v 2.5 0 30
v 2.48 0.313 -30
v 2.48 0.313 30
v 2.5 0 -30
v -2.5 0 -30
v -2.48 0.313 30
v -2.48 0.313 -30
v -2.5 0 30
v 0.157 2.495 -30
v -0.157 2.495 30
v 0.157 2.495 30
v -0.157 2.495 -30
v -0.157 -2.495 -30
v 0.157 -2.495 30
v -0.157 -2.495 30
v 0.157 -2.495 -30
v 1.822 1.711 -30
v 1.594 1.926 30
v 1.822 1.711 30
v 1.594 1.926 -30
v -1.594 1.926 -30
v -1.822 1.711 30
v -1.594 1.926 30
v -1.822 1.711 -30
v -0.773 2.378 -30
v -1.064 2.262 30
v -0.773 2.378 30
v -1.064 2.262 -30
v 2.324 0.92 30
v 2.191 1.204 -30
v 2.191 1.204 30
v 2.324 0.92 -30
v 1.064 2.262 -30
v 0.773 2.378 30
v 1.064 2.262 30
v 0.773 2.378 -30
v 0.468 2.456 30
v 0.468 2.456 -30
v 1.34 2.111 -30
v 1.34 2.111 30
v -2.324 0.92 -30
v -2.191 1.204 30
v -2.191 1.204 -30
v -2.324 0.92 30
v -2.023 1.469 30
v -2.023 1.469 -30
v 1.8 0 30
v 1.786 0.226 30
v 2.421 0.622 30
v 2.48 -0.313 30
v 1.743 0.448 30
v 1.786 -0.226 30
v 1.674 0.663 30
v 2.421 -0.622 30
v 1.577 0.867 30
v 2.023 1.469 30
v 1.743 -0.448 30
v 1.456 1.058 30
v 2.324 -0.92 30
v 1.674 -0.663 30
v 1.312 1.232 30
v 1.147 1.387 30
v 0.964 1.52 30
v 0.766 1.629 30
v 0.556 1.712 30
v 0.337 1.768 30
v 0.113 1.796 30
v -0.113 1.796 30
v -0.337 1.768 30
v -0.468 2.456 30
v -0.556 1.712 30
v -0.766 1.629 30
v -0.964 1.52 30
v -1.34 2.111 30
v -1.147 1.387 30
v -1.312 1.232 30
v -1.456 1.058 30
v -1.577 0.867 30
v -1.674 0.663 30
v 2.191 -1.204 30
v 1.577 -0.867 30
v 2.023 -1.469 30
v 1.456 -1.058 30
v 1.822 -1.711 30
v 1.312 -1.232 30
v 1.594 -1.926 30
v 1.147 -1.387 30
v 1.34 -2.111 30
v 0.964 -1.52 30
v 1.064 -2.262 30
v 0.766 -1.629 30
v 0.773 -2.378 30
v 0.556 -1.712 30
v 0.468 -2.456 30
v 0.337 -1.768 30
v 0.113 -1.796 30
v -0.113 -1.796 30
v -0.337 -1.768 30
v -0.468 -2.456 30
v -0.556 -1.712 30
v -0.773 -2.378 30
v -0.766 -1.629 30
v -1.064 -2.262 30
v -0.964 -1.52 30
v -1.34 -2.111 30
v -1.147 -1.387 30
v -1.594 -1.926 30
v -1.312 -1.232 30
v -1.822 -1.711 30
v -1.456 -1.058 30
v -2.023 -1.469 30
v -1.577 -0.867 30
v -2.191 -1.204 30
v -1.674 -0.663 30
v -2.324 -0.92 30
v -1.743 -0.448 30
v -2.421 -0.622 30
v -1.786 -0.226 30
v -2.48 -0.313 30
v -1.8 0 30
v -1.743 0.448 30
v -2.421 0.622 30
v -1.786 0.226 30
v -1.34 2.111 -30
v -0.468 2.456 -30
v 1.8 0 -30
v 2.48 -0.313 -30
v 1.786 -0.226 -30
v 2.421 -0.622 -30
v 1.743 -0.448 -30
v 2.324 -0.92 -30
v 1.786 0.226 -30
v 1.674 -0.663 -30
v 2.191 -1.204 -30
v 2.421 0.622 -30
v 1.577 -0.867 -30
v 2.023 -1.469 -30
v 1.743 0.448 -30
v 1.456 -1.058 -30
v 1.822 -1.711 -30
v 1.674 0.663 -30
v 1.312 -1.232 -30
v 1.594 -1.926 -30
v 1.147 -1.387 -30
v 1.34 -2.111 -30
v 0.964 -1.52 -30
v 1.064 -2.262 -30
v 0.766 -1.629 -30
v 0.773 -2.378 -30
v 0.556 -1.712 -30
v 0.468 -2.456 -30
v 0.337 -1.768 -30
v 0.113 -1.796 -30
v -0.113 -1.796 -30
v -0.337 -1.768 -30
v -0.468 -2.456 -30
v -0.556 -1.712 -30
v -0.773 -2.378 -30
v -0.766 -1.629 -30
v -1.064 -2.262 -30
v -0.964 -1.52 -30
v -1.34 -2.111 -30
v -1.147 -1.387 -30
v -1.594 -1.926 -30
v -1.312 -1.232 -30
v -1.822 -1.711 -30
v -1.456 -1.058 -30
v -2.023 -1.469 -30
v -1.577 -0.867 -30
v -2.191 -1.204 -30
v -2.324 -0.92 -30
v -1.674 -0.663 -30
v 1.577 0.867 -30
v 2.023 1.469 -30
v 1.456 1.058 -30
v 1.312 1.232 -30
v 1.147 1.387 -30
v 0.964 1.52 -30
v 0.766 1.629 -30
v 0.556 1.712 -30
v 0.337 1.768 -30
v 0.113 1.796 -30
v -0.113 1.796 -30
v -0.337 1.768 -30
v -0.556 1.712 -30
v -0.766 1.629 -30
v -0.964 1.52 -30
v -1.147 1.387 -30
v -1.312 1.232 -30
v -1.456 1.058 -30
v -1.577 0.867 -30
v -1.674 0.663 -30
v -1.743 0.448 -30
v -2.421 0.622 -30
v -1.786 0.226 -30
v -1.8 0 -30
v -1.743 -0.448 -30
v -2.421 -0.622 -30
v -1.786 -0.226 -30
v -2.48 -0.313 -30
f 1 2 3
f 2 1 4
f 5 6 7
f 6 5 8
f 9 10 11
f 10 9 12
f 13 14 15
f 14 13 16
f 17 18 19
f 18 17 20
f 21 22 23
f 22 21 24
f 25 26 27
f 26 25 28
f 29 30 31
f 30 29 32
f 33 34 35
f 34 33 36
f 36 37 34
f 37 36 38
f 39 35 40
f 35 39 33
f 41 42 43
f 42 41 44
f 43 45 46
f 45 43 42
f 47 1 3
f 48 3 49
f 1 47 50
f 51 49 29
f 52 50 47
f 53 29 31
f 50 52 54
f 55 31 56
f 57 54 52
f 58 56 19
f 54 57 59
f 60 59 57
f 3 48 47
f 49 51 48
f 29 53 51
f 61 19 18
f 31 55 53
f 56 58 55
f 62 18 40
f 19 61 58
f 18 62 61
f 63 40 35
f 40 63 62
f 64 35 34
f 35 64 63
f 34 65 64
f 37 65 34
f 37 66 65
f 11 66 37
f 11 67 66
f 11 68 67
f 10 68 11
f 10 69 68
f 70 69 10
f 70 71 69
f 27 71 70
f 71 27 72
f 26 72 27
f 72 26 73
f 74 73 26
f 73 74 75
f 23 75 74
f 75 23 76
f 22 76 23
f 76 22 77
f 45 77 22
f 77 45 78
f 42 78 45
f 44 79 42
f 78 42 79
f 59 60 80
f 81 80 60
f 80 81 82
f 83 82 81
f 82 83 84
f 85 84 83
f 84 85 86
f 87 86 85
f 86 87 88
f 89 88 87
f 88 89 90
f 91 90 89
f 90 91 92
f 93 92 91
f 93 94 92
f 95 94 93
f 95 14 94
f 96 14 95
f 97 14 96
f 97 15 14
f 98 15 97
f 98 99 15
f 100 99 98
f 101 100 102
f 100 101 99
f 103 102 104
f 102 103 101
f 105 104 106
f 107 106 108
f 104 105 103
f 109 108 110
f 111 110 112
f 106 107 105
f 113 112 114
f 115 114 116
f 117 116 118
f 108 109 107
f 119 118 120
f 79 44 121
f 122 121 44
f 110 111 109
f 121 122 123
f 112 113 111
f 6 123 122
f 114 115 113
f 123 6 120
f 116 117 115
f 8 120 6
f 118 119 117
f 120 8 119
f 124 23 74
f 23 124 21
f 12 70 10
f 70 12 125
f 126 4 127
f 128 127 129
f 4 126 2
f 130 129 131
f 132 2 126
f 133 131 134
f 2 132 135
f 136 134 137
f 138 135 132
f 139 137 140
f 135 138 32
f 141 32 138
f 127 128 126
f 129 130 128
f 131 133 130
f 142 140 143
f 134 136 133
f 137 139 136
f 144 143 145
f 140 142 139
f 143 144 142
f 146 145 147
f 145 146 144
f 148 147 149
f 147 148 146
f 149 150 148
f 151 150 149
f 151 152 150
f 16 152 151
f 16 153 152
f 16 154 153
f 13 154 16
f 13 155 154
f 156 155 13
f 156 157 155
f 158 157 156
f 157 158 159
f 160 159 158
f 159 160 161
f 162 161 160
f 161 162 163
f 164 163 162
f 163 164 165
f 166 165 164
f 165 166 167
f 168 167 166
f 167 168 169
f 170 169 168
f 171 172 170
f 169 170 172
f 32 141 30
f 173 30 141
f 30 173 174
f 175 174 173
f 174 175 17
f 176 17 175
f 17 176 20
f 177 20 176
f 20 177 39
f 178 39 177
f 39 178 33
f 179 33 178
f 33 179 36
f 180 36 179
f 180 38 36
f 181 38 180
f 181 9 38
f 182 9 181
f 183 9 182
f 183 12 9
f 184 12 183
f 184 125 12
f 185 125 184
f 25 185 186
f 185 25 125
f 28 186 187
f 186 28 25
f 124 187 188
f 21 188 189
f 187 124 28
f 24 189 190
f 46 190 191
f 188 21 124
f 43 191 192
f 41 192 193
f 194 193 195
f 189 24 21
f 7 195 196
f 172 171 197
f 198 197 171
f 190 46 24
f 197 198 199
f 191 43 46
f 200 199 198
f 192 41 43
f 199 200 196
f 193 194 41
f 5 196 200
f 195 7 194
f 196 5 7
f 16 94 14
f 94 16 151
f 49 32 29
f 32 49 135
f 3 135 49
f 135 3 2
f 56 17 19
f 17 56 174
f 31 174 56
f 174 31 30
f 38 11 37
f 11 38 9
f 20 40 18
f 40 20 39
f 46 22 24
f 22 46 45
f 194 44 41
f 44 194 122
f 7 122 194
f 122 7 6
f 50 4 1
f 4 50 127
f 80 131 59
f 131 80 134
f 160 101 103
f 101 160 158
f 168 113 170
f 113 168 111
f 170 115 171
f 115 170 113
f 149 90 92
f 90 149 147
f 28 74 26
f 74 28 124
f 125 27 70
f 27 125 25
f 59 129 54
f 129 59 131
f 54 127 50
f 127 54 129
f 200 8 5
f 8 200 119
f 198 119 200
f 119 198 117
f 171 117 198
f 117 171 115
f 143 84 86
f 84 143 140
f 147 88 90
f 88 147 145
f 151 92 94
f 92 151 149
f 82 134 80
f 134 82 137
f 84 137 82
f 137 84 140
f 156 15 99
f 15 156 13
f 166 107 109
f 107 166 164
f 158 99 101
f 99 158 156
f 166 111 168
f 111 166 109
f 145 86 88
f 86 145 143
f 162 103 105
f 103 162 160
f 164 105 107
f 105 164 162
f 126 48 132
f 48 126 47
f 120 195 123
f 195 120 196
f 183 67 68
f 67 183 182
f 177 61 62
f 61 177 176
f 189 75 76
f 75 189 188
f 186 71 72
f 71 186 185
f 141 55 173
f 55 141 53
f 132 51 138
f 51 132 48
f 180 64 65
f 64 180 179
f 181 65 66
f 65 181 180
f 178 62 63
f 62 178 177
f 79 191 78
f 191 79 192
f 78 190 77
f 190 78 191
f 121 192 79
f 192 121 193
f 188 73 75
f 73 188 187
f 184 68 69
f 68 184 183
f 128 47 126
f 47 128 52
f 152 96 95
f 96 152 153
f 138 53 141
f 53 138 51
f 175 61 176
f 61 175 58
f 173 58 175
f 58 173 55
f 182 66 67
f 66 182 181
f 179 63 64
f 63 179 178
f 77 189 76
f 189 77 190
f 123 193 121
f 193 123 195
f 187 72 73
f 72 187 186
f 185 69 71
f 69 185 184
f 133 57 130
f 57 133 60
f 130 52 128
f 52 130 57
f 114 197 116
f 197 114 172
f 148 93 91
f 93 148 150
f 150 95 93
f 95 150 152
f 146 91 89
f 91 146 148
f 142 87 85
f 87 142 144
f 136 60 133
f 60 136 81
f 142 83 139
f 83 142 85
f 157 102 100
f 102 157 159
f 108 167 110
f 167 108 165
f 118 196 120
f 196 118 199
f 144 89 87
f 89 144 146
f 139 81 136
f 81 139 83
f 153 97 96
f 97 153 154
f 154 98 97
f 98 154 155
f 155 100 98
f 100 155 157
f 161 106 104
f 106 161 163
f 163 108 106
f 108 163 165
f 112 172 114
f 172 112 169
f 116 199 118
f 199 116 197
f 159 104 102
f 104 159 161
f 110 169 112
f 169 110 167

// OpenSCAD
$fn = 50;


difference() {
	union() {
		translate(v = [0, 0, -30.0000000000]) {
			cylinder(h = 60, r = 2.5000000000);
		}
	}
	union() {
		translate(v = [0, 0, -100.0000000000]) {
			cylinder(h = 200, r = 1.8000000000);
		}
	}
}
